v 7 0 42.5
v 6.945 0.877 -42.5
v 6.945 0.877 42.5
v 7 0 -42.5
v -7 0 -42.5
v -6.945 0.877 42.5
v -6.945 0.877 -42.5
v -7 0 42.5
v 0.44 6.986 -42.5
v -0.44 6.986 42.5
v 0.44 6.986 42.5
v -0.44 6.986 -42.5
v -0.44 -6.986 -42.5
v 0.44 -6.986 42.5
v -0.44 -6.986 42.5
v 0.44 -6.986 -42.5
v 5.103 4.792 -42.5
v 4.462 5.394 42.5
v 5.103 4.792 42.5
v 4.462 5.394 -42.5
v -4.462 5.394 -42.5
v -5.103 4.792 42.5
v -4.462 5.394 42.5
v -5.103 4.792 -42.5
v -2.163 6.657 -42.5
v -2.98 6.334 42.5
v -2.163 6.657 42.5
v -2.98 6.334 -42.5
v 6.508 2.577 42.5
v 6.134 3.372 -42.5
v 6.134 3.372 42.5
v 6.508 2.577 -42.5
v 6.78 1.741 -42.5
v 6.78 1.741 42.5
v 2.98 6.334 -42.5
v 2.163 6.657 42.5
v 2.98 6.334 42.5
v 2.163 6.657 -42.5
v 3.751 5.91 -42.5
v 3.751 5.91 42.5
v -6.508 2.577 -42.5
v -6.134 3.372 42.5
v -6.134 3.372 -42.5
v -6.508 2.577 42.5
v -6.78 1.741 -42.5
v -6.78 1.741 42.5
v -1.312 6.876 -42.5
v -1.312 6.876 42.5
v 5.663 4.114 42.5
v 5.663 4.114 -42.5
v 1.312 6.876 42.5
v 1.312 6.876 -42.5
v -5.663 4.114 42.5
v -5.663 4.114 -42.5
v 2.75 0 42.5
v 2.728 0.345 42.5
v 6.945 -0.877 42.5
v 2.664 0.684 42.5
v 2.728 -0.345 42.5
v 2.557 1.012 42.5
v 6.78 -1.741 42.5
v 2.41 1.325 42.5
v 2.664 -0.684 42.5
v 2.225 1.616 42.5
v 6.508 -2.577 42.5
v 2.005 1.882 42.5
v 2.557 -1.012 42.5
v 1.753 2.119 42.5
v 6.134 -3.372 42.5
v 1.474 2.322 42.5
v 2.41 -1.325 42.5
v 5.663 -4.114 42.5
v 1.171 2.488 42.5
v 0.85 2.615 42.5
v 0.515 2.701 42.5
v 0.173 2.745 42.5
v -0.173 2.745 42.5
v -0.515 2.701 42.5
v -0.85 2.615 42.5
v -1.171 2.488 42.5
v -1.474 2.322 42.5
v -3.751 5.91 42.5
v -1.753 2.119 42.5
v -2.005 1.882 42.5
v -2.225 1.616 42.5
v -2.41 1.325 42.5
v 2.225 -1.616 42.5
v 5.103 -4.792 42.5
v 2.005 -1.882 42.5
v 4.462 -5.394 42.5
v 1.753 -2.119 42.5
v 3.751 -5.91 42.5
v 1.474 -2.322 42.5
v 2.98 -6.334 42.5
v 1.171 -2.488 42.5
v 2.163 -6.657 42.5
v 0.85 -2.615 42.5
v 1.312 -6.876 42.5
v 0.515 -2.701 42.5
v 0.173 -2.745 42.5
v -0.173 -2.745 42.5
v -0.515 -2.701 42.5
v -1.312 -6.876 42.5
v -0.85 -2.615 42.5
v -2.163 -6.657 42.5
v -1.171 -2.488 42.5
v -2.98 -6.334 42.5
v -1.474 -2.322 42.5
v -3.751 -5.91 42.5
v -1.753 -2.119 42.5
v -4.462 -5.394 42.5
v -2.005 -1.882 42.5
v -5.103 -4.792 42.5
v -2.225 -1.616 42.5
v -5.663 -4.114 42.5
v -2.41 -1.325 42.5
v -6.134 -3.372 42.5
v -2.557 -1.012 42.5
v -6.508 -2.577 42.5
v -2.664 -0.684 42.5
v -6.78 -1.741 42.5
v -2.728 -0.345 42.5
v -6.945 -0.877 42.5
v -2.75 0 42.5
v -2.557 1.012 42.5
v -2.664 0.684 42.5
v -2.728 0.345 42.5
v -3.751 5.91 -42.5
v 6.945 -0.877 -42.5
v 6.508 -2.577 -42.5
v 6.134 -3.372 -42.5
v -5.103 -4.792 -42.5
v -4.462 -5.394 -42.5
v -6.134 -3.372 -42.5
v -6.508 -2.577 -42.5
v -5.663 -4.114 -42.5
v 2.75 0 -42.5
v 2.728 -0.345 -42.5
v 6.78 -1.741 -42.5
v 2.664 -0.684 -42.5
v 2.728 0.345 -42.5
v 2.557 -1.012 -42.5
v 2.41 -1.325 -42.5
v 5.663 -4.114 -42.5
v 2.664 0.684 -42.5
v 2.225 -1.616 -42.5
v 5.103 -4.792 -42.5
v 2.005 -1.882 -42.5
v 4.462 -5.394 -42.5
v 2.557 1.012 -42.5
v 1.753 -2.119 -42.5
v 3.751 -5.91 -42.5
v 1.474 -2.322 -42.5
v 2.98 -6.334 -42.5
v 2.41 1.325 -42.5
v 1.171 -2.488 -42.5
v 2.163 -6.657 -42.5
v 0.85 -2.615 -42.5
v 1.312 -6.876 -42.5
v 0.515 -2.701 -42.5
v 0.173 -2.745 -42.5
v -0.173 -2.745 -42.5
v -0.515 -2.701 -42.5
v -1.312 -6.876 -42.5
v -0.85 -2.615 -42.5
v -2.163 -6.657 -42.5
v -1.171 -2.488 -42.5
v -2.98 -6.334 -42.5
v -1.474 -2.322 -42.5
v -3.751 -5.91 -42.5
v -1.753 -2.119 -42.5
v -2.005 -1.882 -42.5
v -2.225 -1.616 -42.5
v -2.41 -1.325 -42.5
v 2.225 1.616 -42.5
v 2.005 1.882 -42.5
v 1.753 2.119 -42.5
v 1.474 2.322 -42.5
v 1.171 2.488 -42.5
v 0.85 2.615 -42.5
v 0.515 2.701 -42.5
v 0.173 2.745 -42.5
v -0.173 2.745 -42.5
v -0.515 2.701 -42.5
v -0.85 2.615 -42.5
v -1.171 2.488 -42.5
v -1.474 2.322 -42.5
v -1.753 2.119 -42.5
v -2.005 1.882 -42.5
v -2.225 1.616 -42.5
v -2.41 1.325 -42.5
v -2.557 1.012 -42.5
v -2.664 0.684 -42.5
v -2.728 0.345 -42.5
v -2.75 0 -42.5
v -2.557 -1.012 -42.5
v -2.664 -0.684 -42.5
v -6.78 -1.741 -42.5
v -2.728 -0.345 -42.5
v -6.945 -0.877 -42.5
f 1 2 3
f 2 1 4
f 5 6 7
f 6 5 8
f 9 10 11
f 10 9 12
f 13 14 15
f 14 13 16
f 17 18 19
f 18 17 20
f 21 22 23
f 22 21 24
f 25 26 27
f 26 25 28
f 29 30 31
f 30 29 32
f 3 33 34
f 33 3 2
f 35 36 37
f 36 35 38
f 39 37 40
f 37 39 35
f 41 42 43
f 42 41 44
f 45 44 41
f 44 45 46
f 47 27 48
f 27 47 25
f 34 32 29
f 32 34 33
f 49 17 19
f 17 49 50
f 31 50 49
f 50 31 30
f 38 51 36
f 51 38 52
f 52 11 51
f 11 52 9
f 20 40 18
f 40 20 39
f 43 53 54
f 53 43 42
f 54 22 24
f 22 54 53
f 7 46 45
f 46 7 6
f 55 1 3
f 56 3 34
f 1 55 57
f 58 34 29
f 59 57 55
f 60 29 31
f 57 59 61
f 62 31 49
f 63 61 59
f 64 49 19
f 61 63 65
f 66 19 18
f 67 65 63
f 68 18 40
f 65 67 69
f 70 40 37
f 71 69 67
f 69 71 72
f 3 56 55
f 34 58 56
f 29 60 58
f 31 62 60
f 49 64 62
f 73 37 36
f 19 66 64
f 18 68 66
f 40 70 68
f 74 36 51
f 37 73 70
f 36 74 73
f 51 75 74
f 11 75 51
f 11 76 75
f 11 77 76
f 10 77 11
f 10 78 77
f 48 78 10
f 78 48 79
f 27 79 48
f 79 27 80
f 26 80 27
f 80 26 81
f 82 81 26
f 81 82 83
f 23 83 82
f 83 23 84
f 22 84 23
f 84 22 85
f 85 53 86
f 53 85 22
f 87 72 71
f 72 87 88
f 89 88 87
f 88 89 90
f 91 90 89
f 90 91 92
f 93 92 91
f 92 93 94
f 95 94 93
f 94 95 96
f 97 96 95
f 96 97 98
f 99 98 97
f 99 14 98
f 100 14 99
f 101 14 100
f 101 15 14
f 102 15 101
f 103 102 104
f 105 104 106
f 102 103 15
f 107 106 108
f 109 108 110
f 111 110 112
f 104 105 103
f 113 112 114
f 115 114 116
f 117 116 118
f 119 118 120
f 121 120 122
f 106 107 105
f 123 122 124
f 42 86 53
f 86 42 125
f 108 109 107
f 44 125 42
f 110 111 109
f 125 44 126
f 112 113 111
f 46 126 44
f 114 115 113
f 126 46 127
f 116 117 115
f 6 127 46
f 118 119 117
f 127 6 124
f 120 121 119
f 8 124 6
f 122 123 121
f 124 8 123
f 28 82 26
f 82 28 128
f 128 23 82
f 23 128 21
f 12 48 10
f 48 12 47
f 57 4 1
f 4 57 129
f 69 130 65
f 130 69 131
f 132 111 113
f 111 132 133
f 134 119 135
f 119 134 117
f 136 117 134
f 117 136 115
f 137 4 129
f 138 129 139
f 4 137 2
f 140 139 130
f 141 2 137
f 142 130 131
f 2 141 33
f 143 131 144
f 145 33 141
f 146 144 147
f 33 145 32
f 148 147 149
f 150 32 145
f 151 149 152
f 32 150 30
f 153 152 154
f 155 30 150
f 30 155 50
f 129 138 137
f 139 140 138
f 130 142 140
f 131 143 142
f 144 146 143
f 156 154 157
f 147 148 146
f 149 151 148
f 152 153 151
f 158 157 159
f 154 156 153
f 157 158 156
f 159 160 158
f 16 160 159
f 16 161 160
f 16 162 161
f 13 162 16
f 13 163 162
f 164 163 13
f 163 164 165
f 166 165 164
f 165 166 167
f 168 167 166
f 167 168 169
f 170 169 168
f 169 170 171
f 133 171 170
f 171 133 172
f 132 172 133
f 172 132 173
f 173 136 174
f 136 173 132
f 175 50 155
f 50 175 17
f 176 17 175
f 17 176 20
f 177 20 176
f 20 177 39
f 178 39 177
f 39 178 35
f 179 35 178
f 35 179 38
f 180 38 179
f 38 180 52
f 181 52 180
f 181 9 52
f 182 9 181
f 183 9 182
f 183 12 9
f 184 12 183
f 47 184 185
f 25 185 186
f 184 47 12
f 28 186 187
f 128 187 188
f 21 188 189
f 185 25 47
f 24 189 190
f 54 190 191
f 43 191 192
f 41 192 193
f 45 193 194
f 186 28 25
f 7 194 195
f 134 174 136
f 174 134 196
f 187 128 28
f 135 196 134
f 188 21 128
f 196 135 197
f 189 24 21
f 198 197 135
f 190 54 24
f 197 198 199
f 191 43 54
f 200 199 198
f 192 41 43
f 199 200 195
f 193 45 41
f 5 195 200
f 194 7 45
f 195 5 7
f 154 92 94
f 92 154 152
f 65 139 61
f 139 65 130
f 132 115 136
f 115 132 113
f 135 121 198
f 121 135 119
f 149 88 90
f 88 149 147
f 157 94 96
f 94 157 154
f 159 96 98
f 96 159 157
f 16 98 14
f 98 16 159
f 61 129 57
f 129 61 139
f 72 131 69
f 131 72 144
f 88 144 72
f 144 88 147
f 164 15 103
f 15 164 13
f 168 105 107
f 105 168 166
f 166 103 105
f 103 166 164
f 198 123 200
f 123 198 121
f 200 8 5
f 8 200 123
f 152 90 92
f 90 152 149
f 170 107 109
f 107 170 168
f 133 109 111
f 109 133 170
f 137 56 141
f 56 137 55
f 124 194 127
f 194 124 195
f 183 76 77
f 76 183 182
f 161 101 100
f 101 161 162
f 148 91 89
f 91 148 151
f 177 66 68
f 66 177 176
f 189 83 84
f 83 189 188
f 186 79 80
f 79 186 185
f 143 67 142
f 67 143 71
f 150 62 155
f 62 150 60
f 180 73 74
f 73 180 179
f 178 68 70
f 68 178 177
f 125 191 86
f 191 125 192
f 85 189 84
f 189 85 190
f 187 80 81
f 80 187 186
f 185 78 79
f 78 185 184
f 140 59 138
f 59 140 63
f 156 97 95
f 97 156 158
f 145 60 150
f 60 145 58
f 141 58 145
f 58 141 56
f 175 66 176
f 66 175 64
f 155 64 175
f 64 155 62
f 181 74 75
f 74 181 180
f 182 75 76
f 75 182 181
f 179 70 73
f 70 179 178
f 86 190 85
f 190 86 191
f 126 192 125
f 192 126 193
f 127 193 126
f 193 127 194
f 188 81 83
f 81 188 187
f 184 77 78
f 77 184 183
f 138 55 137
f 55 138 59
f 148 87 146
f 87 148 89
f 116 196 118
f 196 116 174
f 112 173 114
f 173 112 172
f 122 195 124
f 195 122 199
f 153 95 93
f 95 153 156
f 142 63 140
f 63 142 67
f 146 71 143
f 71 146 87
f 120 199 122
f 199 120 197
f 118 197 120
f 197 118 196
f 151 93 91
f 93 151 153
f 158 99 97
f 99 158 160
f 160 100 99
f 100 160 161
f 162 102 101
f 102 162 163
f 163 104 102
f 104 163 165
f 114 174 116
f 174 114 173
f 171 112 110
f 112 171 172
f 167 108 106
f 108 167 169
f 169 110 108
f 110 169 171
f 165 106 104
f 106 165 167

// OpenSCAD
$fn = 50;


difference() {
	union() {
		translate(v = [0, 0, -42.5000000000]) {
			cylinder(h = 85, r = 7.0000000000);
		}
	}
	union() {
		translate(v = [0, 0, -100.0000000000]) {
			cylinder(h = 200, r = 2.7500000000);
		}
	}
}
